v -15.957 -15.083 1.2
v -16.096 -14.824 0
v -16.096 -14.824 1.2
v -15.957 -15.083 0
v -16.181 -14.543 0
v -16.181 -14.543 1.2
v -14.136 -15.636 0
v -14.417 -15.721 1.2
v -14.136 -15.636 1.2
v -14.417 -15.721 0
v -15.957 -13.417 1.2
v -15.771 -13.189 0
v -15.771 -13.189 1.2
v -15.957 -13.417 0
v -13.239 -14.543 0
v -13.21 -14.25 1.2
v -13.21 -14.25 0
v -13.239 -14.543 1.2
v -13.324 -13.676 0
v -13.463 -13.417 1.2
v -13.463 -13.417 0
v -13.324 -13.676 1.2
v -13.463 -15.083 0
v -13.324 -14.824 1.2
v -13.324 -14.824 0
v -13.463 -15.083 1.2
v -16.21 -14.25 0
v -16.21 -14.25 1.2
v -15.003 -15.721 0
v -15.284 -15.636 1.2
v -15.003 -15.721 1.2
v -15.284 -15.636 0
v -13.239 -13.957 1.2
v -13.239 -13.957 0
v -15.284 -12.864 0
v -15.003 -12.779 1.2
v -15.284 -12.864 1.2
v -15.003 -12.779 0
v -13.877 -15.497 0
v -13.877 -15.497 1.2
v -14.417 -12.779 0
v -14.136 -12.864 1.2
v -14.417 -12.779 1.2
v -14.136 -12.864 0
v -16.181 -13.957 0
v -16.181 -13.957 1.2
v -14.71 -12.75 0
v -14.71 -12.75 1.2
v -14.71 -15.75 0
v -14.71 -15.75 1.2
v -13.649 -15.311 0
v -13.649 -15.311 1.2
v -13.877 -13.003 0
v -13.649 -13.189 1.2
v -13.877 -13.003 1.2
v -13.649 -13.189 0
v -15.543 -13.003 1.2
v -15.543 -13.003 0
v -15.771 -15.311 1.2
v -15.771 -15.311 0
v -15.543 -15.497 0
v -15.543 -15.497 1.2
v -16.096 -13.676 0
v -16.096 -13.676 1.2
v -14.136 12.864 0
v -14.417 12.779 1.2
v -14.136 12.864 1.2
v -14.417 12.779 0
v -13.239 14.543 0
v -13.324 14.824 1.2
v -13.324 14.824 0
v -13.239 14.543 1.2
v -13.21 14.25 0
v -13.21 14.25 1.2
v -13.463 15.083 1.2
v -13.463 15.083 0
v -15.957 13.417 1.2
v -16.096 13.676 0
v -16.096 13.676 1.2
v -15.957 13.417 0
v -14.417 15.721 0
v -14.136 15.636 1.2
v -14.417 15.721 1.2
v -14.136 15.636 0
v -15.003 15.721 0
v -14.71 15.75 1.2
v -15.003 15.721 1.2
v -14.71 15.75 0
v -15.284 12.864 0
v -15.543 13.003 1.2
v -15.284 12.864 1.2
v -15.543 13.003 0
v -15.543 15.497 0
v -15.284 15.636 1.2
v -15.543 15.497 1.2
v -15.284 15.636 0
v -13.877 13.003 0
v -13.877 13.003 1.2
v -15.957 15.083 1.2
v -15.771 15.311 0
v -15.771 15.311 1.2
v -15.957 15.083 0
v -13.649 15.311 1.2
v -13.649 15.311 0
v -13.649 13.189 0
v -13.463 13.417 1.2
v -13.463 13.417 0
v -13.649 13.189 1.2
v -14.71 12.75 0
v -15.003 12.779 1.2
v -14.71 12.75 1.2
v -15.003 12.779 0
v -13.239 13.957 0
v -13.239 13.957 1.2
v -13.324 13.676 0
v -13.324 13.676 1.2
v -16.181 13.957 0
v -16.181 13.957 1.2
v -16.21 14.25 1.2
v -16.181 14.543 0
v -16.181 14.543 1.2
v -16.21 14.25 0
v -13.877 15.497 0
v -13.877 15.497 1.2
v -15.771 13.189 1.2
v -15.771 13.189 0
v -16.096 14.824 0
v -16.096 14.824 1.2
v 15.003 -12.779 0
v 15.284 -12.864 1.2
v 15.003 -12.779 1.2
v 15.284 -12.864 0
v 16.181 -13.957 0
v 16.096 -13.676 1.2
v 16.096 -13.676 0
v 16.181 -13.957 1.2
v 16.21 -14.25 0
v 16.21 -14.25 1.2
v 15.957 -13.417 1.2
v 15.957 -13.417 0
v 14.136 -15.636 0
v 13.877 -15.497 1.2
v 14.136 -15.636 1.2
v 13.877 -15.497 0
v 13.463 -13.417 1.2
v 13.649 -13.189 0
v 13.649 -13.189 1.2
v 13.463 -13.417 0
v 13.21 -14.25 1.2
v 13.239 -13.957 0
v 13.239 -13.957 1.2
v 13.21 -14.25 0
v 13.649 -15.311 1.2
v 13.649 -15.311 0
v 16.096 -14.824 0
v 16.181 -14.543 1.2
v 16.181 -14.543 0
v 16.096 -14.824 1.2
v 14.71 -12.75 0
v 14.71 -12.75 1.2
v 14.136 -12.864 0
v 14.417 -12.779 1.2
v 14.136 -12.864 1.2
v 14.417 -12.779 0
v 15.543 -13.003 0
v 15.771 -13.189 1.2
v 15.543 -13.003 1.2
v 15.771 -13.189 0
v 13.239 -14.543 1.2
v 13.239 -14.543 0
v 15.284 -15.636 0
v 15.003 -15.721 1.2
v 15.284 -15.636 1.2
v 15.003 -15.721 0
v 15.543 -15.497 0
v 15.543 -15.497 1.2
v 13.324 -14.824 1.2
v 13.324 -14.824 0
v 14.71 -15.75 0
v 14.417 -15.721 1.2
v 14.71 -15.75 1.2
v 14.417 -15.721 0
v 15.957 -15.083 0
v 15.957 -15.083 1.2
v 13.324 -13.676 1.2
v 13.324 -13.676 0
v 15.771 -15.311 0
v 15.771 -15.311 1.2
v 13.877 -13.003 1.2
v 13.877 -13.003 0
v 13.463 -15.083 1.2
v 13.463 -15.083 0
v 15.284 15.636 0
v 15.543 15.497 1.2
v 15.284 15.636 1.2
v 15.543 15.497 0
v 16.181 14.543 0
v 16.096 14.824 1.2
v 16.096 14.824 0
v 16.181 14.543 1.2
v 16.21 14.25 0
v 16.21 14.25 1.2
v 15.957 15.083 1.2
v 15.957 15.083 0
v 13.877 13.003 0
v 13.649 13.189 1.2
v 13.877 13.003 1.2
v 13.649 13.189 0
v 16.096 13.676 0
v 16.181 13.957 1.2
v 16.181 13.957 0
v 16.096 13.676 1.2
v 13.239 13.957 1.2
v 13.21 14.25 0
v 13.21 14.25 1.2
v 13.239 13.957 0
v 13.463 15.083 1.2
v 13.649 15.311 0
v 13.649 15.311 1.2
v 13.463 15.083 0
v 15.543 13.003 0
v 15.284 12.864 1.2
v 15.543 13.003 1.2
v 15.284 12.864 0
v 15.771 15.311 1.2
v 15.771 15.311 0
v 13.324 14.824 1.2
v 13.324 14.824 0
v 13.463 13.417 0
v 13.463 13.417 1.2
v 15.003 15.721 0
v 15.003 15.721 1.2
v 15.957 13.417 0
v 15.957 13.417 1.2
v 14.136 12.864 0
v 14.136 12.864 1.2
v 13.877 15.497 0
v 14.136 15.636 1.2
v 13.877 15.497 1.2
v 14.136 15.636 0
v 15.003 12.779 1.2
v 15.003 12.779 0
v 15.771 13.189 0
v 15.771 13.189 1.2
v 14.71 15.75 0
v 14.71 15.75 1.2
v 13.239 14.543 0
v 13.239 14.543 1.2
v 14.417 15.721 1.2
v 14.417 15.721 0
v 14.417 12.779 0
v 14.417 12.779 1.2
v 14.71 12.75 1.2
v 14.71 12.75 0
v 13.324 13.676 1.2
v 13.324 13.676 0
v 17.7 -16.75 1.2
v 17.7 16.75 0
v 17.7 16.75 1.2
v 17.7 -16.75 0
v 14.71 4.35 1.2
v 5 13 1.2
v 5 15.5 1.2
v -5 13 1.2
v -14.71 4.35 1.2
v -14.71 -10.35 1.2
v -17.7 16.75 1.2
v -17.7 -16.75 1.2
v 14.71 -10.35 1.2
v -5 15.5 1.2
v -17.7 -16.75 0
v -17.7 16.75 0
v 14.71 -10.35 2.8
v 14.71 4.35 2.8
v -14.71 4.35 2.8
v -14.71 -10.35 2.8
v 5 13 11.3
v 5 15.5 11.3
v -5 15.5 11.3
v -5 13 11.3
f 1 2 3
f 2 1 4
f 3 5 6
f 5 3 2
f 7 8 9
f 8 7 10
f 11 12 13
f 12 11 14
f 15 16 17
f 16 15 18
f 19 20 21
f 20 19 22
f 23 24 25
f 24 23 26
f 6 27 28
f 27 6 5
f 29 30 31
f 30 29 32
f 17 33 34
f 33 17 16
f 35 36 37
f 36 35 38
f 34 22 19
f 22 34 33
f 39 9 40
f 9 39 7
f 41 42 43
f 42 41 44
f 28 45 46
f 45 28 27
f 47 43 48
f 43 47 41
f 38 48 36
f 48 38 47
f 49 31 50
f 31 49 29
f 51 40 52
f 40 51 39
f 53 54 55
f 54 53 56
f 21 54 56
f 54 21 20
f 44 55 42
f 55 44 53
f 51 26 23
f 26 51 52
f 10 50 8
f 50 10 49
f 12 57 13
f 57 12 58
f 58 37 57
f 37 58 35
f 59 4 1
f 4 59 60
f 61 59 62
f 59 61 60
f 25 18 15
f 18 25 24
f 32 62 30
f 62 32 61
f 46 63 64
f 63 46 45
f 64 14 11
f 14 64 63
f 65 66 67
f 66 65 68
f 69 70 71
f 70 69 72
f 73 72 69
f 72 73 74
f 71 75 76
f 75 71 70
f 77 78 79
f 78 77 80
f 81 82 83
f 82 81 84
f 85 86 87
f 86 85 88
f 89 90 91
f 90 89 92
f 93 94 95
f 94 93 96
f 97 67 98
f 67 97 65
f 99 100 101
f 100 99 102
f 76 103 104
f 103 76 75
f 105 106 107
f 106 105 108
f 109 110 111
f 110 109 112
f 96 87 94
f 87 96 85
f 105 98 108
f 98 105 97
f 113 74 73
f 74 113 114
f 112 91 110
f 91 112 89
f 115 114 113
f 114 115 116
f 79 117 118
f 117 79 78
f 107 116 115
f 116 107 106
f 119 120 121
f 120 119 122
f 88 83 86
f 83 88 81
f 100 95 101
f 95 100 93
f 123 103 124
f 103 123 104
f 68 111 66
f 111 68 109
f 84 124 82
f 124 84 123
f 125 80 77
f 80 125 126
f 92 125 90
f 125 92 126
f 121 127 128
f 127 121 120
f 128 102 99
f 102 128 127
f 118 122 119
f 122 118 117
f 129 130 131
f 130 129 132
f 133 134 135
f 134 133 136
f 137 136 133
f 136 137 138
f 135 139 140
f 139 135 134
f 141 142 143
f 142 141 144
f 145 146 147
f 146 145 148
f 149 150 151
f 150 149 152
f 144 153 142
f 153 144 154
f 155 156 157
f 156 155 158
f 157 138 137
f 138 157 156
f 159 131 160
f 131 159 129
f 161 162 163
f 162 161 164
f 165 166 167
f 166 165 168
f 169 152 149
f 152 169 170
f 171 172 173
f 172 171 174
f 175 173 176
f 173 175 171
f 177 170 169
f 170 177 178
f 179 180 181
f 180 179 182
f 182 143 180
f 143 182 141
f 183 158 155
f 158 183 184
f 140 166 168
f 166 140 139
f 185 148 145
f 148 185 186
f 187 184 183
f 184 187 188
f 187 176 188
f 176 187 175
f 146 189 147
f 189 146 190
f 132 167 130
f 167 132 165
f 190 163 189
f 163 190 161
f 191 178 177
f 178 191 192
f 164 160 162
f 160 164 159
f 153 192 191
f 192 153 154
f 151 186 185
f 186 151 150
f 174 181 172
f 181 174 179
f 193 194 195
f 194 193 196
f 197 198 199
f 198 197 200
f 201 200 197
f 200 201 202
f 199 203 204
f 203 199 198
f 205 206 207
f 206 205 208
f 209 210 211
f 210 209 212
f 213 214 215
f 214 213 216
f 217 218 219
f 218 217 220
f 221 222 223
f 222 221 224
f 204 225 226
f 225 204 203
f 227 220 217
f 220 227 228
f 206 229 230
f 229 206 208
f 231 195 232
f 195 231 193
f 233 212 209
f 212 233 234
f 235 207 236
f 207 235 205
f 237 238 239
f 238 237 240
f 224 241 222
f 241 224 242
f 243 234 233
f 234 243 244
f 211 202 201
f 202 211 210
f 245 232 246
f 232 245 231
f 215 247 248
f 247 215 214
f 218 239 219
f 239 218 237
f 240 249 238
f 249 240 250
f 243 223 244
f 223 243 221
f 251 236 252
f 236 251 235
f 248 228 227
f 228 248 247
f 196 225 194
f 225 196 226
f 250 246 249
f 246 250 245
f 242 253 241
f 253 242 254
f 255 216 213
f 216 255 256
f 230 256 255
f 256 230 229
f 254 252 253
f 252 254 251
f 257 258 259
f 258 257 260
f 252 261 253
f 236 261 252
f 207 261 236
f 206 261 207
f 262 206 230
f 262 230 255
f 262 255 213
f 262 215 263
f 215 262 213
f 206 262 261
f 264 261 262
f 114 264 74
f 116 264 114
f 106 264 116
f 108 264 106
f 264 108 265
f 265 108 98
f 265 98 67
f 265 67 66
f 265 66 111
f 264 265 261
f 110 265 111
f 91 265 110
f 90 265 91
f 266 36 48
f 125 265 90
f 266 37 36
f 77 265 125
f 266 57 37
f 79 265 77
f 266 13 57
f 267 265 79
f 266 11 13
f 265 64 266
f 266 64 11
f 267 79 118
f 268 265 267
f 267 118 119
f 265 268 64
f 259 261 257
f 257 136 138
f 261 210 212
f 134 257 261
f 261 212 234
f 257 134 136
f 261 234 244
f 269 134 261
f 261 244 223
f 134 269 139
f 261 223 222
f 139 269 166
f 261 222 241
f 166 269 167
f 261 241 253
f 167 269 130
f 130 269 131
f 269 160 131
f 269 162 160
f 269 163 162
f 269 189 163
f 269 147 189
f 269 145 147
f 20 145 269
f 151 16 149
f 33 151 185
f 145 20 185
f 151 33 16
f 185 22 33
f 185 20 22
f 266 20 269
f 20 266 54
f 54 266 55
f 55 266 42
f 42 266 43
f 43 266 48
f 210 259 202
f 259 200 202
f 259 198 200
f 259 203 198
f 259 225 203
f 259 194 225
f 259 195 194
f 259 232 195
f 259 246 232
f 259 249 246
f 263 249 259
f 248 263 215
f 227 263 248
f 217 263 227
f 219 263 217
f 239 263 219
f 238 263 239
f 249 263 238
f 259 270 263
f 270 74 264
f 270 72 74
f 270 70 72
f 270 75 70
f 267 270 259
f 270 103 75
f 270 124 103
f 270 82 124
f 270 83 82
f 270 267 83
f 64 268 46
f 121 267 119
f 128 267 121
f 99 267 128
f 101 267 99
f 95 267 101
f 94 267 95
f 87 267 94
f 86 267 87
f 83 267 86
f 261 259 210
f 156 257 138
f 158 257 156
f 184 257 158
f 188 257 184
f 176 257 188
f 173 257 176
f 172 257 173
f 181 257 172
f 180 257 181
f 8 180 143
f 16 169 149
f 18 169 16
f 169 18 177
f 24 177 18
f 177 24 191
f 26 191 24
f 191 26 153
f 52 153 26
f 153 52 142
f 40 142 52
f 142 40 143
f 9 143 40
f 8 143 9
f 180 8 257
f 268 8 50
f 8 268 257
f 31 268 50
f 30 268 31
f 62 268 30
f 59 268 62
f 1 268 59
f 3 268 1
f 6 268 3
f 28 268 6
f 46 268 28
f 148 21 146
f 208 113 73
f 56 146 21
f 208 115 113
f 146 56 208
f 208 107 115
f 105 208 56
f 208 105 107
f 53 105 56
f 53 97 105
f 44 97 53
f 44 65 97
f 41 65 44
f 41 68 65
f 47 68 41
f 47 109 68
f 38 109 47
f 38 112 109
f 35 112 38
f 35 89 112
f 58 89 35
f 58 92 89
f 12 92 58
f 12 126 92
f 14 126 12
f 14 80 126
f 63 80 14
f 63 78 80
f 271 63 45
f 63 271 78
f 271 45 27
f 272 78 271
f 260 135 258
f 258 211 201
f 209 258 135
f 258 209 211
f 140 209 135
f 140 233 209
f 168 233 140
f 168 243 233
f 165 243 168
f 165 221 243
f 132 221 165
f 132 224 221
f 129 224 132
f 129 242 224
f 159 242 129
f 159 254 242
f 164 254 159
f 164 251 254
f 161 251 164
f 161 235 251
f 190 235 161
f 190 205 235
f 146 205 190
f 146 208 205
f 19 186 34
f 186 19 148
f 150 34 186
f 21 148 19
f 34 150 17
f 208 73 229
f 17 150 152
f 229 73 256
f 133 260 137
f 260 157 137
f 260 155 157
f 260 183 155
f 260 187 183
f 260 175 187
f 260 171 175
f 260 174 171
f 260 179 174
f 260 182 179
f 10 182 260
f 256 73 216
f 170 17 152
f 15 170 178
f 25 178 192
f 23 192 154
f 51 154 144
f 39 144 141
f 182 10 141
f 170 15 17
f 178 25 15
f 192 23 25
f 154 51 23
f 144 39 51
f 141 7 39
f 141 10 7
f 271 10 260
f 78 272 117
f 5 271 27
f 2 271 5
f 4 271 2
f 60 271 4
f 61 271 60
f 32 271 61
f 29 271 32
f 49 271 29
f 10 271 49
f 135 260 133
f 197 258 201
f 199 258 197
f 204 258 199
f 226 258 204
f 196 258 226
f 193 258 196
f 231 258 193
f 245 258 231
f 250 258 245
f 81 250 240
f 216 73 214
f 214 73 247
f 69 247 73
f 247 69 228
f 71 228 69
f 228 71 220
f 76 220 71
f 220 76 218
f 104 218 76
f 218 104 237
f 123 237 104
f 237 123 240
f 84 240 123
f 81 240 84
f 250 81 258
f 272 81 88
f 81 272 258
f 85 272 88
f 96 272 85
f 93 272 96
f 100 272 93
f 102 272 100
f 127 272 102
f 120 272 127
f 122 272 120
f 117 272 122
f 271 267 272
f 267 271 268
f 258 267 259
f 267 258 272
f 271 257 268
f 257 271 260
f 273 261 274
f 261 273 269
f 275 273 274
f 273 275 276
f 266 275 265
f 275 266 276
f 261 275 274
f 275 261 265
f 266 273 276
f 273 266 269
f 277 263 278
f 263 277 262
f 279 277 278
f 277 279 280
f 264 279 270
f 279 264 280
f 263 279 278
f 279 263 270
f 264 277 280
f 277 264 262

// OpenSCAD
$fn = 32;

pcb = [35.4, 33.5, 1.2];
holes = [
  [-14.71, -14.25], [-14.71, 14.25],
  [14.71, -14.25], [14.71, 14.25]
];

module board() {
  difference() {
    translate([-pcb[0] / 2, -pcb[1] / 2, 0]) cube(pcb);
    for (hole = holes)
      translate([hole[0], hole[1], -0.1]) cylinder(d = 3, h = pcb[2] + 0.2);
  }
}

color("#2e7d5b") board();
color("#181818") translate([0, -3, pcb[2] + 0.8]) cube([29.42, 14.7, 1.6], center = true);
color("#181818") translate([0, 14.25, pcb[2] + 5.05]) cube([10, 2.5, 10.1], center = true);
